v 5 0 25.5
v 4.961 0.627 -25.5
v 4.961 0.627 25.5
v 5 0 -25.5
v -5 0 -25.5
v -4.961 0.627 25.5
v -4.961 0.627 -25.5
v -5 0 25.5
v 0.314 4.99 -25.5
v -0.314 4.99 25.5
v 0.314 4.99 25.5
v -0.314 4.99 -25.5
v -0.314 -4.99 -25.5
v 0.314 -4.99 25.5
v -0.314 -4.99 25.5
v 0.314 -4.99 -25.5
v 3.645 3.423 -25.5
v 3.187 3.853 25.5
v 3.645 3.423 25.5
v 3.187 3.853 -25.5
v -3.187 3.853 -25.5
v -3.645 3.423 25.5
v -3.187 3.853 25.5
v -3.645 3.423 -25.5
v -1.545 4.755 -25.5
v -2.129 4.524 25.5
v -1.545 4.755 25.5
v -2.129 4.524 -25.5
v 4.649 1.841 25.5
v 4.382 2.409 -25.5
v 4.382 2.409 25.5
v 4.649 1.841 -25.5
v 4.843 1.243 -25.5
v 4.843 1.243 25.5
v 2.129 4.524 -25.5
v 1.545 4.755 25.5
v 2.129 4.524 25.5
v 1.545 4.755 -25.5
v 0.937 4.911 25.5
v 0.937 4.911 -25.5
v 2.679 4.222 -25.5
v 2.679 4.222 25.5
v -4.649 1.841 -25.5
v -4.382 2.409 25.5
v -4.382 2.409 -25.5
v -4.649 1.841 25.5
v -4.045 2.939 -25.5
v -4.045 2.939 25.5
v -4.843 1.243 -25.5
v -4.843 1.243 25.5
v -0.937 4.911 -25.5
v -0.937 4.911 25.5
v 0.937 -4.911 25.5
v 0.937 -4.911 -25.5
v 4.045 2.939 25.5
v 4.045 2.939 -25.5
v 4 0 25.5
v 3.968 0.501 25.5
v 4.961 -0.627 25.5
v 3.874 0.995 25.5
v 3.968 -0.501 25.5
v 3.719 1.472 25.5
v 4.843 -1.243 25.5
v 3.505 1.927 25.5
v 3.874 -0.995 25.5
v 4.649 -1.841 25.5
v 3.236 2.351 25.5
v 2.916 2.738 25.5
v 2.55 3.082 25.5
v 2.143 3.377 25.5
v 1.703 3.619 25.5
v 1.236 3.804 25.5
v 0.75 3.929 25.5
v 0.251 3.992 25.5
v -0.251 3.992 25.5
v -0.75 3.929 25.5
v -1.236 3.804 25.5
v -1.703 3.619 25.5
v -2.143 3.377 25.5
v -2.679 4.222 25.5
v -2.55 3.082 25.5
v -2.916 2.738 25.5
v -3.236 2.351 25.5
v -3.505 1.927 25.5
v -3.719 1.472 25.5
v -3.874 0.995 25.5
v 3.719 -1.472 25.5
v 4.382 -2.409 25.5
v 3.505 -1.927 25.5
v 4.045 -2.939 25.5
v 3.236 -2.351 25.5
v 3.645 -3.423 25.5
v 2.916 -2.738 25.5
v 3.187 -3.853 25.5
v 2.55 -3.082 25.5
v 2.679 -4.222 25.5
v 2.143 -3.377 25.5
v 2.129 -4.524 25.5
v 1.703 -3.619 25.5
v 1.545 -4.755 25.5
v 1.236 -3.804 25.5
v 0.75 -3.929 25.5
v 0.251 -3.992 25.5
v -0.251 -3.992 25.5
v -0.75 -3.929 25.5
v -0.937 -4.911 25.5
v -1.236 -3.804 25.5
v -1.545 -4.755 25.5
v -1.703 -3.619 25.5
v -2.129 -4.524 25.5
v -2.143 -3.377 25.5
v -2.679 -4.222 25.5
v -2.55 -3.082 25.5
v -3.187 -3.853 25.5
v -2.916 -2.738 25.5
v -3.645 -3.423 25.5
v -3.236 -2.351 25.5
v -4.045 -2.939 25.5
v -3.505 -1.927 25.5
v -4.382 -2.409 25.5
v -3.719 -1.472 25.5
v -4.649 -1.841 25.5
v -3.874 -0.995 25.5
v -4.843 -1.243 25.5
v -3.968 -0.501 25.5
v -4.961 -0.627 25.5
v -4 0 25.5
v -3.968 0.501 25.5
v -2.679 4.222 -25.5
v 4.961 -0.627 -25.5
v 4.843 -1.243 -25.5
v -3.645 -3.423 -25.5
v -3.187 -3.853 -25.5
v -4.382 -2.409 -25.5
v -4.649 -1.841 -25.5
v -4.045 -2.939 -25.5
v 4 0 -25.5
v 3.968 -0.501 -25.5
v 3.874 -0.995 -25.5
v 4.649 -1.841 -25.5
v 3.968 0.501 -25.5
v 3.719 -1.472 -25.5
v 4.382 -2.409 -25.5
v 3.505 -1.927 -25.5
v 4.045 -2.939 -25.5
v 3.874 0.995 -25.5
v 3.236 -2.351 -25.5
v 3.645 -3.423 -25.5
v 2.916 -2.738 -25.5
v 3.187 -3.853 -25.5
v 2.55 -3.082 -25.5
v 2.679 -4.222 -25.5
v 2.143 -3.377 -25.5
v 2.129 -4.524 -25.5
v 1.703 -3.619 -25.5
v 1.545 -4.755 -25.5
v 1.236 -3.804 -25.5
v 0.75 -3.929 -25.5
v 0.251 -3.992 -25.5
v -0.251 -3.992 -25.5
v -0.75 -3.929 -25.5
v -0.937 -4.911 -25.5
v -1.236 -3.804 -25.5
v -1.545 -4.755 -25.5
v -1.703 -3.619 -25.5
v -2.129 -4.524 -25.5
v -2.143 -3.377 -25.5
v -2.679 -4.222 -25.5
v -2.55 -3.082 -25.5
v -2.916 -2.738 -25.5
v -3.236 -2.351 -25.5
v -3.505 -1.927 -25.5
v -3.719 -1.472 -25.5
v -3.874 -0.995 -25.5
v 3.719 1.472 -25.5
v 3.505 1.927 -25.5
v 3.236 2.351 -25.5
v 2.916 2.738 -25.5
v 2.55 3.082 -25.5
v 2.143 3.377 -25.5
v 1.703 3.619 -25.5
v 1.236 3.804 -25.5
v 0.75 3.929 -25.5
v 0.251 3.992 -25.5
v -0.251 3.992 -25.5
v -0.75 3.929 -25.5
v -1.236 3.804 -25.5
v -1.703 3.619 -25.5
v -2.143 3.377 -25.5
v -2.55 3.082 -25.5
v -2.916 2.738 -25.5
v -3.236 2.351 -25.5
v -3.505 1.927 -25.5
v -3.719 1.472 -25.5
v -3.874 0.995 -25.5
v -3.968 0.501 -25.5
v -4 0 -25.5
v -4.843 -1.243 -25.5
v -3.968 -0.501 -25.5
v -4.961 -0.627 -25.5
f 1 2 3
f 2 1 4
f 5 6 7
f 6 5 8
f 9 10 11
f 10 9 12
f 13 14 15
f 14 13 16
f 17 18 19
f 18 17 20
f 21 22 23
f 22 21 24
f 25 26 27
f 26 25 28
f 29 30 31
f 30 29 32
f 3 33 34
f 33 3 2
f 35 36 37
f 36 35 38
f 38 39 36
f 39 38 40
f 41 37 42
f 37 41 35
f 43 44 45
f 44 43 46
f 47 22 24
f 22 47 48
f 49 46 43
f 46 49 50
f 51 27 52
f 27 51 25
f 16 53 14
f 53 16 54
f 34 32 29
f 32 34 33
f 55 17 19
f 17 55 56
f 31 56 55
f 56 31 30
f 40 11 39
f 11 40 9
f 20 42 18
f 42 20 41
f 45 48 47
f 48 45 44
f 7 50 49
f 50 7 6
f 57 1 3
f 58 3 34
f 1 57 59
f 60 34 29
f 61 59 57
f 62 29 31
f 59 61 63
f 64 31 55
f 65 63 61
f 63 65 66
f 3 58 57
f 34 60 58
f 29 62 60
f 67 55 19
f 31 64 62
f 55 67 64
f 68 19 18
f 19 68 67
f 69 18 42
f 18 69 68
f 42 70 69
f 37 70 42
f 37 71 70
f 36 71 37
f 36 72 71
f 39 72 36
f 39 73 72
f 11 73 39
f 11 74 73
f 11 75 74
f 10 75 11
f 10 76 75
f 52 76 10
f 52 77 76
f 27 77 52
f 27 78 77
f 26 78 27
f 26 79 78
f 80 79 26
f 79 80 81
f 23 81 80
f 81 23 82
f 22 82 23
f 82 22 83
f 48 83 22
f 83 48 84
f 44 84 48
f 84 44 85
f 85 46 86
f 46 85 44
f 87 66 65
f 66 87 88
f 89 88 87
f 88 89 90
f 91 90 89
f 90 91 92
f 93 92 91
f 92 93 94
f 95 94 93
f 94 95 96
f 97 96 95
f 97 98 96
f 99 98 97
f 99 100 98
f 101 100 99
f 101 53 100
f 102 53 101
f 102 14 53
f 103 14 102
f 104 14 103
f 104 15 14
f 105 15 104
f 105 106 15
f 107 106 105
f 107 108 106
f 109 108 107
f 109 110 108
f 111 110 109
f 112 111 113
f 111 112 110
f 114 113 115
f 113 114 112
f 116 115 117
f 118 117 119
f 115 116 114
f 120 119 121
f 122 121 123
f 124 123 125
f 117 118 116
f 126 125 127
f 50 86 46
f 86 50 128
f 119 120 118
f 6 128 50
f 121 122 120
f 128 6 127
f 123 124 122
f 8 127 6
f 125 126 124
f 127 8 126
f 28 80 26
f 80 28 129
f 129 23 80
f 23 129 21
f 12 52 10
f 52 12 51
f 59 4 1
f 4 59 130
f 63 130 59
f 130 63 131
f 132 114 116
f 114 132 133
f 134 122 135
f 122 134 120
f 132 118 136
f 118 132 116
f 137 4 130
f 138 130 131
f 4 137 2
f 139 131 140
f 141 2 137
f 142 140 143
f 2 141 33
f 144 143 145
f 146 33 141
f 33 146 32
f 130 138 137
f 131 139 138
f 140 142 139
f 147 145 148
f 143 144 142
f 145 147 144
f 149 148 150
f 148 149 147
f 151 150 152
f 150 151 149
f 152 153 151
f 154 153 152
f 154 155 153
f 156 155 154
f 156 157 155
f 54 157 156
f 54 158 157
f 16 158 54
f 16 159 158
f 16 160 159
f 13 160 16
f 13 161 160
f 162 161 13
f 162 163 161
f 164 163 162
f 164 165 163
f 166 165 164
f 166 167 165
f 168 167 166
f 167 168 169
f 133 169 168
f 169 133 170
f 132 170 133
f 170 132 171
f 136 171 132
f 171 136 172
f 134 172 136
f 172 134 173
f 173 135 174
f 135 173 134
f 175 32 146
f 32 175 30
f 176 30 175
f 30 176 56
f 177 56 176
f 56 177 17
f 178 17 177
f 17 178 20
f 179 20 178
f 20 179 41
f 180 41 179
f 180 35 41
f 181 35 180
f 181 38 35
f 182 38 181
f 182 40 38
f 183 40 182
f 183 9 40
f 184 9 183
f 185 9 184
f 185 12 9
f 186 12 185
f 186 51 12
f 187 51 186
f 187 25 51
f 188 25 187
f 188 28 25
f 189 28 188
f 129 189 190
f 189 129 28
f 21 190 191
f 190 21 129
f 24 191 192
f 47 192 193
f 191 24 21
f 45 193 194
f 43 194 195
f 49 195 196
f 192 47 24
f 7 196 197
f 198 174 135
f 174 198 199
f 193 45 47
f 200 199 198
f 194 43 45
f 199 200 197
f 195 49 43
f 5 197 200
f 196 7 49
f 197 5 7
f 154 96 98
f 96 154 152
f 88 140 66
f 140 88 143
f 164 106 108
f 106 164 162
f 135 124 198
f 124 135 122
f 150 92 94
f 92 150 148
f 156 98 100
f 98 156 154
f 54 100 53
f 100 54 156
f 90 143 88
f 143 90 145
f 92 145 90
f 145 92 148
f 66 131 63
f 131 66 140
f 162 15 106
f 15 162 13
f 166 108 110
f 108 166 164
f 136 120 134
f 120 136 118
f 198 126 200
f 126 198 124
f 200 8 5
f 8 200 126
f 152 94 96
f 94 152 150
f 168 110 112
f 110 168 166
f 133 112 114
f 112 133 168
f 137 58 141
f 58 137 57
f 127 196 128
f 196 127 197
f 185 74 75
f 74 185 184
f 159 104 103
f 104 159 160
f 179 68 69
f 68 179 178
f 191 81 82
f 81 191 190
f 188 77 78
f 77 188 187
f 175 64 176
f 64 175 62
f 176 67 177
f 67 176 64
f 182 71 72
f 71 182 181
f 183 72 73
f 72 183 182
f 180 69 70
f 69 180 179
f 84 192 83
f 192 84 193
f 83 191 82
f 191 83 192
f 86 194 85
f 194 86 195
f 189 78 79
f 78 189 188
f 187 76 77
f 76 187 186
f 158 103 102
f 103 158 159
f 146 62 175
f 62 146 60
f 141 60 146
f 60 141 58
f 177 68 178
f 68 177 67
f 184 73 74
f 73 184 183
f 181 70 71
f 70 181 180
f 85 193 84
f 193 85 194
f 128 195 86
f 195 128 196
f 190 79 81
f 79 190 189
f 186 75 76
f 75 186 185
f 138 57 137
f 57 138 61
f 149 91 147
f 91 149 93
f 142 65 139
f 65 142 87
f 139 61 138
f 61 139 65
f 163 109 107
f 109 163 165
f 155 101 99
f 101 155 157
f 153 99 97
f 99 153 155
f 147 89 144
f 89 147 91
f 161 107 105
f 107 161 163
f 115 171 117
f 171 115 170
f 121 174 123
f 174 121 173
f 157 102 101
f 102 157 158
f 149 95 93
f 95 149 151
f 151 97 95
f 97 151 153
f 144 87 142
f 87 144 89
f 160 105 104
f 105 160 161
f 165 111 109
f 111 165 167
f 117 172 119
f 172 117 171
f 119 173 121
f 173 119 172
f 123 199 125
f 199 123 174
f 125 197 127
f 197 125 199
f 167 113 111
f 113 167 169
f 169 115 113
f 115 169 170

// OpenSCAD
$fn = 50;


difference() {
	union() {
		translate(v = [0, 0, -25.5000000000]) {
			cylinder(h = 51, r = 5.0000000000);
		}
	}
	union() {
		translate(v = [0, 0, -100.0000000000]) {
			cylinder(h = 200, r = 4);
		}
	}
}
